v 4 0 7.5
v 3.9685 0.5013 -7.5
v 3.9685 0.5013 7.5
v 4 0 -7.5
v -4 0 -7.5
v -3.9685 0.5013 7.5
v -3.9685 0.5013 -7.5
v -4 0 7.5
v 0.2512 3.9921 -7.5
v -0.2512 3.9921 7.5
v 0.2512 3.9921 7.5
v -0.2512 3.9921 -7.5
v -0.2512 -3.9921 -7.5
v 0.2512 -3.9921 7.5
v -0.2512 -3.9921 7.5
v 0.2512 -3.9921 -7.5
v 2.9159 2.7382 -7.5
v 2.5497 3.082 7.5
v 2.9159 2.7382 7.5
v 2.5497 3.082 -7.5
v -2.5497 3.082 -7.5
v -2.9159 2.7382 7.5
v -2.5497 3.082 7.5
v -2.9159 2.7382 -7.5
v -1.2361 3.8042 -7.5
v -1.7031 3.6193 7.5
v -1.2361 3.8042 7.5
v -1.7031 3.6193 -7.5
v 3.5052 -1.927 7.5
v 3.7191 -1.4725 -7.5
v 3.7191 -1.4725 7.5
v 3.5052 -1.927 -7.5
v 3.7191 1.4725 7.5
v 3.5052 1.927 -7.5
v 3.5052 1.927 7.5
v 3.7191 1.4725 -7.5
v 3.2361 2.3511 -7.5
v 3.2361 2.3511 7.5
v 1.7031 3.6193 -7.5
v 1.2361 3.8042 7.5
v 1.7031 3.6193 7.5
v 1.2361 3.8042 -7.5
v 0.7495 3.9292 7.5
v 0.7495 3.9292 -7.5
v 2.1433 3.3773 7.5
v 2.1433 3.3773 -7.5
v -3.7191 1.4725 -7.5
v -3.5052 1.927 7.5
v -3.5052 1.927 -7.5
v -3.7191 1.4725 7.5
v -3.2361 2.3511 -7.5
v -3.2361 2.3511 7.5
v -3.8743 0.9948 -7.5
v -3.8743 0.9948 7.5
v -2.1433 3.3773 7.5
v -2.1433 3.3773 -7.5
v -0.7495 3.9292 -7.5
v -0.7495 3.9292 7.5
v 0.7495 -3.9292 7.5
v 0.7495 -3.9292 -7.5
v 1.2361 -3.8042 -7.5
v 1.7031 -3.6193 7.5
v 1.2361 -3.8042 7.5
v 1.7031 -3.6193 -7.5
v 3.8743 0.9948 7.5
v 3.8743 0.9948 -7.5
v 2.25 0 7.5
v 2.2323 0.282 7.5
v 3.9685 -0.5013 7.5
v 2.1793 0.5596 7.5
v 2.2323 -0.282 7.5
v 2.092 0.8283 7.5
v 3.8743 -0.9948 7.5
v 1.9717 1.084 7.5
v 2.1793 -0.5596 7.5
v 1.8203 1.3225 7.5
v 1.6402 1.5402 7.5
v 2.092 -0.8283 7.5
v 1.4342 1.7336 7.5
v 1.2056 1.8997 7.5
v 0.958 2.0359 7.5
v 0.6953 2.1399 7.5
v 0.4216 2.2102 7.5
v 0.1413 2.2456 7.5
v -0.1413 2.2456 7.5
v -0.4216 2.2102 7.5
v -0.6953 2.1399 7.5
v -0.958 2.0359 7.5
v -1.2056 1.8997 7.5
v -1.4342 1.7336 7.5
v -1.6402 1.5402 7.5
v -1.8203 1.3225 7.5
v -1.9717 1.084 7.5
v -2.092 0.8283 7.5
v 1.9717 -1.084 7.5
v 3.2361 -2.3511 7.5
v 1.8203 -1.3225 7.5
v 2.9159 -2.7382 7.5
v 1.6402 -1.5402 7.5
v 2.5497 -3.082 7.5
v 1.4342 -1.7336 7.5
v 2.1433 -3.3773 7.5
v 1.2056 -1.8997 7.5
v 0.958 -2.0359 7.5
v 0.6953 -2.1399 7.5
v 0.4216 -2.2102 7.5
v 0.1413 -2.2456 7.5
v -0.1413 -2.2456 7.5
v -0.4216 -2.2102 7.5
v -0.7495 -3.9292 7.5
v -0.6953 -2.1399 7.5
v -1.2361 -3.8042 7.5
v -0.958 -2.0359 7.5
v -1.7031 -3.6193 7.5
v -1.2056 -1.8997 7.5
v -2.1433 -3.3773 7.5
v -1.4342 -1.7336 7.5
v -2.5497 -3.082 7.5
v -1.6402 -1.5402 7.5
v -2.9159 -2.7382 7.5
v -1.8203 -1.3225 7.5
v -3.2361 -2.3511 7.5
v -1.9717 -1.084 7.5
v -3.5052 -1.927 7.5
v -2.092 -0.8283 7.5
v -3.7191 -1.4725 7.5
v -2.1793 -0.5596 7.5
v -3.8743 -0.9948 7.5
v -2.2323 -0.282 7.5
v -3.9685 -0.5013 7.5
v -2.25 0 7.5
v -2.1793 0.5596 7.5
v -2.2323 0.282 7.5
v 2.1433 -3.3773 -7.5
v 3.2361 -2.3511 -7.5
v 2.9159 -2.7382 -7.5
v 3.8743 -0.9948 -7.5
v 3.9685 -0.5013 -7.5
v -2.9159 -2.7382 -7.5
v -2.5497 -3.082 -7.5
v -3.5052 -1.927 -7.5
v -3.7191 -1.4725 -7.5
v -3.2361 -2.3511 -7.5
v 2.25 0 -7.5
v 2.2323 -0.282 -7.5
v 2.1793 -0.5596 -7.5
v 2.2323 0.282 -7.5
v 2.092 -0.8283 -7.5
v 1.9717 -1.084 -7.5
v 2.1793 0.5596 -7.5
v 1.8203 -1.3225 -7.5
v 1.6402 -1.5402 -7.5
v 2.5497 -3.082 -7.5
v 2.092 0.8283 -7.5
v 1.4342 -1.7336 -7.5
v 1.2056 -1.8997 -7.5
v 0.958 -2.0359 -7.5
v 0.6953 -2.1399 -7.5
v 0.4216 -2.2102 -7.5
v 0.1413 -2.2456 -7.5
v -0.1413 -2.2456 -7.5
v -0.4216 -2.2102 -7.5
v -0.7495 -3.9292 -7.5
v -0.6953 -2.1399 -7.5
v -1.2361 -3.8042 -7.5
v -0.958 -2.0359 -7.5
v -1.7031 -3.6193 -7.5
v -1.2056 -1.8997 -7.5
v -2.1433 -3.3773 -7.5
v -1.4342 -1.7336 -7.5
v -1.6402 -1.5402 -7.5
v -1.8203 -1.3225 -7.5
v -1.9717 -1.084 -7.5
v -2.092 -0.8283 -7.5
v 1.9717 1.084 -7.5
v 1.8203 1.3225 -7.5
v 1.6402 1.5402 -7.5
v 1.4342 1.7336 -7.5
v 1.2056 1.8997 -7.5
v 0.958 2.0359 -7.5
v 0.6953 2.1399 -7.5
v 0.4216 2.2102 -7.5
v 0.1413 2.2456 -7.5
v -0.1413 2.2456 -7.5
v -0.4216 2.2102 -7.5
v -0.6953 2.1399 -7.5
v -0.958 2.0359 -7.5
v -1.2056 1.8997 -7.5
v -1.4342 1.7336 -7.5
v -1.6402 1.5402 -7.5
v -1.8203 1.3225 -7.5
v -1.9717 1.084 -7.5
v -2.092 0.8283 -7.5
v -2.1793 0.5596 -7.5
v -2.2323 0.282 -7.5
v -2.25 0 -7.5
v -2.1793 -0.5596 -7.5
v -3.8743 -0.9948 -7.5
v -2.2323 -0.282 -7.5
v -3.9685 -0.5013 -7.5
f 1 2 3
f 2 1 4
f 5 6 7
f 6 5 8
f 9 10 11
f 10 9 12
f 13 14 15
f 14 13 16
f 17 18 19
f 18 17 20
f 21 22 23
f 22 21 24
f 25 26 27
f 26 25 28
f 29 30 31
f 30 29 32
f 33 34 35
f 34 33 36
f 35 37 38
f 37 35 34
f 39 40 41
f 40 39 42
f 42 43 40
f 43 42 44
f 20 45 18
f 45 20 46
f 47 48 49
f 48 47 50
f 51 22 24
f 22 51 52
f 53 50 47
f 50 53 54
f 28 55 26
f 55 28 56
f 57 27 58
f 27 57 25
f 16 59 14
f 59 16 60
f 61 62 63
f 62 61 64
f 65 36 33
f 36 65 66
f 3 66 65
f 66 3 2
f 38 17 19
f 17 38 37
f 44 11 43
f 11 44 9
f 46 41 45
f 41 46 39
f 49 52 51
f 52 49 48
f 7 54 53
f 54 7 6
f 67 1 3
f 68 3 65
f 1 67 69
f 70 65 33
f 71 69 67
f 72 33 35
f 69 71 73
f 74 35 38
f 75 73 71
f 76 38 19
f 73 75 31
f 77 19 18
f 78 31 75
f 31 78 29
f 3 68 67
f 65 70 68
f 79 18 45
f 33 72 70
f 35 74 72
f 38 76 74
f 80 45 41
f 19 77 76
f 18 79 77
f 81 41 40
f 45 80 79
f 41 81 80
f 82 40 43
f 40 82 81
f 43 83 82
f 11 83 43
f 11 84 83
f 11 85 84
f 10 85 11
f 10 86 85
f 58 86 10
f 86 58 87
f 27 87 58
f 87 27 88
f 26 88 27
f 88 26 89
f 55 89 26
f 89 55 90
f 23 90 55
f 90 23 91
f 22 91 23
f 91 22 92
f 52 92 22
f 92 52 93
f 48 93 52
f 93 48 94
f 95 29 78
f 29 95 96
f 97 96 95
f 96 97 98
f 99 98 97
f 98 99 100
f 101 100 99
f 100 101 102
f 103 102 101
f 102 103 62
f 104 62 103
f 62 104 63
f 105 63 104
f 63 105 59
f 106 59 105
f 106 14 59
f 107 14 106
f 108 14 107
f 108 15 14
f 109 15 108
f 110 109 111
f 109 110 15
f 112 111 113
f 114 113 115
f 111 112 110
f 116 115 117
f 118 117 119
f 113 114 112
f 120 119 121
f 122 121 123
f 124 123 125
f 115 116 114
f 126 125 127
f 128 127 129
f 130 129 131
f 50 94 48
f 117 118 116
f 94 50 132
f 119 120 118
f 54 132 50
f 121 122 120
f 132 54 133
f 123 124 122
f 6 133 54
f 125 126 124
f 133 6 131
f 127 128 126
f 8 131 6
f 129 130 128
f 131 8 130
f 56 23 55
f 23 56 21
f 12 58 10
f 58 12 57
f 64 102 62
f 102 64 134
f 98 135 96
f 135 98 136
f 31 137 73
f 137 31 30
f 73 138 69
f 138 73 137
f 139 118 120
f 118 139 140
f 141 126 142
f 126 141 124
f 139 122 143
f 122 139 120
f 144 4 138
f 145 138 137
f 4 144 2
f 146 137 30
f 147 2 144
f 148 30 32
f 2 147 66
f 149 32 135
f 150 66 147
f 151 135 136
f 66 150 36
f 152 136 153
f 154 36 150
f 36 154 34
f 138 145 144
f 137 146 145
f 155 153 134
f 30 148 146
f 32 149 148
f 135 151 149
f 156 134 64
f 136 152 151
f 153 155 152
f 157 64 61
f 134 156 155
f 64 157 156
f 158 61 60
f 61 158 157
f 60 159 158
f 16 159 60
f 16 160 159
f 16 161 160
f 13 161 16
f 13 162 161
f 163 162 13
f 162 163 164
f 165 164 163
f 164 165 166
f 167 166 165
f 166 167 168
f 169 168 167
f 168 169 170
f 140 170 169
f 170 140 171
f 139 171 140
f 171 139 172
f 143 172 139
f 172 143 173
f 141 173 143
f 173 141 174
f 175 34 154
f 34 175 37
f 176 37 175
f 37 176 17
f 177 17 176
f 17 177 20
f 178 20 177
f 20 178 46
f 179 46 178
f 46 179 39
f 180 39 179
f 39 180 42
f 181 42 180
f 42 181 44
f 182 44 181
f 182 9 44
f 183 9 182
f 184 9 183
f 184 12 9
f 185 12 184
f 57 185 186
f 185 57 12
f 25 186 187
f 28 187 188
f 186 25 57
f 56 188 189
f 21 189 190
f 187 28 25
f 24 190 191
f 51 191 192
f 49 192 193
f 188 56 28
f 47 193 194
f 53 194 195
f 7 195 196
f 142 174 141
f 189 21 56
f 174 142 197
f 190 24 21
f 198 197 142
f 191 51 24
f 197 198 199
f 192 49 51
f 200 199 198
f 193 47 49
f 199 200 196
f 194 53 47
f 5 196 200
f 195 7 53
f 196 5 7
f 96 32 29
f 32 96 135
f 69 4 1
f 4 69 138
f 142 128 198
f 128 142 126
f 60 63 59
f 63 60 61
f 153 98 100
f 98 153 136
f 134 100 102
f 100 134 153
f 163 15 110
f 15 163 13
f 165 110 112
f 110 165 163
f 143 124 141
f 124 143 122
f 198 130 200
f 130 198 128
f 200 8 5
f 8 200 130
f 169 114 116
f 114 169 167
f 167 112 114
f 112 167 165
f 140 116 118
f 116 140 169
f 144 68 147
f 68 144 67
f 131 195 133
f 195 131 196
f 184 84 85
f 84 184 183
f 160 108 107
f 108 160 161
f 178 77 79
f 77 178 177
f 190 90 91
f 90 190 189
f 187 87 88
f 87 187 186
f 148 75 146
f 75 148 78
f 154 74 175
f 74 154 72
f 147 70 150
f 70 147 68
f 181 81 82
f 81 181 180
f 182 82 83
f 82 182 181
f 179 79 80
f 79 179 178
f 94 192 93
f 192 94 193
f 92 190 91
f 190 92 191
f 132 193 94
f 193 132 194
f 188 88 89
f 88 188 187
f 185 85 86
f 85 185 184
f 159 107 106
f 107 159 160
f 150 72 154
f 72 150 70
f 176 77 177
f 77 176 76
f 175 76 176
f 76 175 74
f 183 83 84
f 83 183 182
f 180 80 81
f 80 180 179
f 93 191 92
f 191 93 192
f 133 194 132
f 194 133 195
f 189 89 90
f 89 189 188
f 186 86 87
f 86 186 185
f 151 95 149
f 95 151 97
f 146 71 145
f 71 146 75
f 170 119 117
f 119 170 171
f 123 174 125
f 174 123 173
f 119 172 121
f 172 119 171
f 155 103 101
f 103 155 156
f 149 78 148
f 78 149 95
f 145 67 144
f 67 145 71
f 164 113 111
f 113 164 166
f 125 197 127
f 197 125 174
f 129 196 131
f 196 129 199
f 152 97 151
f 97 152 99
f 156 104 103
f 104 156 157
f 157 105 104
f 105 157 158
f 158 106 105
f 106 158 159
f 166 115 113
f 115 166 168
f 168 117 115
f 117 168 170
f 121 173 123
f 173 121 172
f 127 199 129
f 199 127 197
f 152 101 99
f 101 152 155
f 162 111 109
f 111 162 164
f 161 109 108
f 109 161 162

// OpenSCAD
$fn = 50;


difference() {
	union() {
		translate(v = [0, 0, -7.5000000000]) {
			cylinder(h = 15, r = 4.0000000000);
		}
	}
	union() {
		translate(v = [0, 0, -100.0000000000]) {
			cylinder(h = 200, r = 2.2500000000);
		}
	}
}
